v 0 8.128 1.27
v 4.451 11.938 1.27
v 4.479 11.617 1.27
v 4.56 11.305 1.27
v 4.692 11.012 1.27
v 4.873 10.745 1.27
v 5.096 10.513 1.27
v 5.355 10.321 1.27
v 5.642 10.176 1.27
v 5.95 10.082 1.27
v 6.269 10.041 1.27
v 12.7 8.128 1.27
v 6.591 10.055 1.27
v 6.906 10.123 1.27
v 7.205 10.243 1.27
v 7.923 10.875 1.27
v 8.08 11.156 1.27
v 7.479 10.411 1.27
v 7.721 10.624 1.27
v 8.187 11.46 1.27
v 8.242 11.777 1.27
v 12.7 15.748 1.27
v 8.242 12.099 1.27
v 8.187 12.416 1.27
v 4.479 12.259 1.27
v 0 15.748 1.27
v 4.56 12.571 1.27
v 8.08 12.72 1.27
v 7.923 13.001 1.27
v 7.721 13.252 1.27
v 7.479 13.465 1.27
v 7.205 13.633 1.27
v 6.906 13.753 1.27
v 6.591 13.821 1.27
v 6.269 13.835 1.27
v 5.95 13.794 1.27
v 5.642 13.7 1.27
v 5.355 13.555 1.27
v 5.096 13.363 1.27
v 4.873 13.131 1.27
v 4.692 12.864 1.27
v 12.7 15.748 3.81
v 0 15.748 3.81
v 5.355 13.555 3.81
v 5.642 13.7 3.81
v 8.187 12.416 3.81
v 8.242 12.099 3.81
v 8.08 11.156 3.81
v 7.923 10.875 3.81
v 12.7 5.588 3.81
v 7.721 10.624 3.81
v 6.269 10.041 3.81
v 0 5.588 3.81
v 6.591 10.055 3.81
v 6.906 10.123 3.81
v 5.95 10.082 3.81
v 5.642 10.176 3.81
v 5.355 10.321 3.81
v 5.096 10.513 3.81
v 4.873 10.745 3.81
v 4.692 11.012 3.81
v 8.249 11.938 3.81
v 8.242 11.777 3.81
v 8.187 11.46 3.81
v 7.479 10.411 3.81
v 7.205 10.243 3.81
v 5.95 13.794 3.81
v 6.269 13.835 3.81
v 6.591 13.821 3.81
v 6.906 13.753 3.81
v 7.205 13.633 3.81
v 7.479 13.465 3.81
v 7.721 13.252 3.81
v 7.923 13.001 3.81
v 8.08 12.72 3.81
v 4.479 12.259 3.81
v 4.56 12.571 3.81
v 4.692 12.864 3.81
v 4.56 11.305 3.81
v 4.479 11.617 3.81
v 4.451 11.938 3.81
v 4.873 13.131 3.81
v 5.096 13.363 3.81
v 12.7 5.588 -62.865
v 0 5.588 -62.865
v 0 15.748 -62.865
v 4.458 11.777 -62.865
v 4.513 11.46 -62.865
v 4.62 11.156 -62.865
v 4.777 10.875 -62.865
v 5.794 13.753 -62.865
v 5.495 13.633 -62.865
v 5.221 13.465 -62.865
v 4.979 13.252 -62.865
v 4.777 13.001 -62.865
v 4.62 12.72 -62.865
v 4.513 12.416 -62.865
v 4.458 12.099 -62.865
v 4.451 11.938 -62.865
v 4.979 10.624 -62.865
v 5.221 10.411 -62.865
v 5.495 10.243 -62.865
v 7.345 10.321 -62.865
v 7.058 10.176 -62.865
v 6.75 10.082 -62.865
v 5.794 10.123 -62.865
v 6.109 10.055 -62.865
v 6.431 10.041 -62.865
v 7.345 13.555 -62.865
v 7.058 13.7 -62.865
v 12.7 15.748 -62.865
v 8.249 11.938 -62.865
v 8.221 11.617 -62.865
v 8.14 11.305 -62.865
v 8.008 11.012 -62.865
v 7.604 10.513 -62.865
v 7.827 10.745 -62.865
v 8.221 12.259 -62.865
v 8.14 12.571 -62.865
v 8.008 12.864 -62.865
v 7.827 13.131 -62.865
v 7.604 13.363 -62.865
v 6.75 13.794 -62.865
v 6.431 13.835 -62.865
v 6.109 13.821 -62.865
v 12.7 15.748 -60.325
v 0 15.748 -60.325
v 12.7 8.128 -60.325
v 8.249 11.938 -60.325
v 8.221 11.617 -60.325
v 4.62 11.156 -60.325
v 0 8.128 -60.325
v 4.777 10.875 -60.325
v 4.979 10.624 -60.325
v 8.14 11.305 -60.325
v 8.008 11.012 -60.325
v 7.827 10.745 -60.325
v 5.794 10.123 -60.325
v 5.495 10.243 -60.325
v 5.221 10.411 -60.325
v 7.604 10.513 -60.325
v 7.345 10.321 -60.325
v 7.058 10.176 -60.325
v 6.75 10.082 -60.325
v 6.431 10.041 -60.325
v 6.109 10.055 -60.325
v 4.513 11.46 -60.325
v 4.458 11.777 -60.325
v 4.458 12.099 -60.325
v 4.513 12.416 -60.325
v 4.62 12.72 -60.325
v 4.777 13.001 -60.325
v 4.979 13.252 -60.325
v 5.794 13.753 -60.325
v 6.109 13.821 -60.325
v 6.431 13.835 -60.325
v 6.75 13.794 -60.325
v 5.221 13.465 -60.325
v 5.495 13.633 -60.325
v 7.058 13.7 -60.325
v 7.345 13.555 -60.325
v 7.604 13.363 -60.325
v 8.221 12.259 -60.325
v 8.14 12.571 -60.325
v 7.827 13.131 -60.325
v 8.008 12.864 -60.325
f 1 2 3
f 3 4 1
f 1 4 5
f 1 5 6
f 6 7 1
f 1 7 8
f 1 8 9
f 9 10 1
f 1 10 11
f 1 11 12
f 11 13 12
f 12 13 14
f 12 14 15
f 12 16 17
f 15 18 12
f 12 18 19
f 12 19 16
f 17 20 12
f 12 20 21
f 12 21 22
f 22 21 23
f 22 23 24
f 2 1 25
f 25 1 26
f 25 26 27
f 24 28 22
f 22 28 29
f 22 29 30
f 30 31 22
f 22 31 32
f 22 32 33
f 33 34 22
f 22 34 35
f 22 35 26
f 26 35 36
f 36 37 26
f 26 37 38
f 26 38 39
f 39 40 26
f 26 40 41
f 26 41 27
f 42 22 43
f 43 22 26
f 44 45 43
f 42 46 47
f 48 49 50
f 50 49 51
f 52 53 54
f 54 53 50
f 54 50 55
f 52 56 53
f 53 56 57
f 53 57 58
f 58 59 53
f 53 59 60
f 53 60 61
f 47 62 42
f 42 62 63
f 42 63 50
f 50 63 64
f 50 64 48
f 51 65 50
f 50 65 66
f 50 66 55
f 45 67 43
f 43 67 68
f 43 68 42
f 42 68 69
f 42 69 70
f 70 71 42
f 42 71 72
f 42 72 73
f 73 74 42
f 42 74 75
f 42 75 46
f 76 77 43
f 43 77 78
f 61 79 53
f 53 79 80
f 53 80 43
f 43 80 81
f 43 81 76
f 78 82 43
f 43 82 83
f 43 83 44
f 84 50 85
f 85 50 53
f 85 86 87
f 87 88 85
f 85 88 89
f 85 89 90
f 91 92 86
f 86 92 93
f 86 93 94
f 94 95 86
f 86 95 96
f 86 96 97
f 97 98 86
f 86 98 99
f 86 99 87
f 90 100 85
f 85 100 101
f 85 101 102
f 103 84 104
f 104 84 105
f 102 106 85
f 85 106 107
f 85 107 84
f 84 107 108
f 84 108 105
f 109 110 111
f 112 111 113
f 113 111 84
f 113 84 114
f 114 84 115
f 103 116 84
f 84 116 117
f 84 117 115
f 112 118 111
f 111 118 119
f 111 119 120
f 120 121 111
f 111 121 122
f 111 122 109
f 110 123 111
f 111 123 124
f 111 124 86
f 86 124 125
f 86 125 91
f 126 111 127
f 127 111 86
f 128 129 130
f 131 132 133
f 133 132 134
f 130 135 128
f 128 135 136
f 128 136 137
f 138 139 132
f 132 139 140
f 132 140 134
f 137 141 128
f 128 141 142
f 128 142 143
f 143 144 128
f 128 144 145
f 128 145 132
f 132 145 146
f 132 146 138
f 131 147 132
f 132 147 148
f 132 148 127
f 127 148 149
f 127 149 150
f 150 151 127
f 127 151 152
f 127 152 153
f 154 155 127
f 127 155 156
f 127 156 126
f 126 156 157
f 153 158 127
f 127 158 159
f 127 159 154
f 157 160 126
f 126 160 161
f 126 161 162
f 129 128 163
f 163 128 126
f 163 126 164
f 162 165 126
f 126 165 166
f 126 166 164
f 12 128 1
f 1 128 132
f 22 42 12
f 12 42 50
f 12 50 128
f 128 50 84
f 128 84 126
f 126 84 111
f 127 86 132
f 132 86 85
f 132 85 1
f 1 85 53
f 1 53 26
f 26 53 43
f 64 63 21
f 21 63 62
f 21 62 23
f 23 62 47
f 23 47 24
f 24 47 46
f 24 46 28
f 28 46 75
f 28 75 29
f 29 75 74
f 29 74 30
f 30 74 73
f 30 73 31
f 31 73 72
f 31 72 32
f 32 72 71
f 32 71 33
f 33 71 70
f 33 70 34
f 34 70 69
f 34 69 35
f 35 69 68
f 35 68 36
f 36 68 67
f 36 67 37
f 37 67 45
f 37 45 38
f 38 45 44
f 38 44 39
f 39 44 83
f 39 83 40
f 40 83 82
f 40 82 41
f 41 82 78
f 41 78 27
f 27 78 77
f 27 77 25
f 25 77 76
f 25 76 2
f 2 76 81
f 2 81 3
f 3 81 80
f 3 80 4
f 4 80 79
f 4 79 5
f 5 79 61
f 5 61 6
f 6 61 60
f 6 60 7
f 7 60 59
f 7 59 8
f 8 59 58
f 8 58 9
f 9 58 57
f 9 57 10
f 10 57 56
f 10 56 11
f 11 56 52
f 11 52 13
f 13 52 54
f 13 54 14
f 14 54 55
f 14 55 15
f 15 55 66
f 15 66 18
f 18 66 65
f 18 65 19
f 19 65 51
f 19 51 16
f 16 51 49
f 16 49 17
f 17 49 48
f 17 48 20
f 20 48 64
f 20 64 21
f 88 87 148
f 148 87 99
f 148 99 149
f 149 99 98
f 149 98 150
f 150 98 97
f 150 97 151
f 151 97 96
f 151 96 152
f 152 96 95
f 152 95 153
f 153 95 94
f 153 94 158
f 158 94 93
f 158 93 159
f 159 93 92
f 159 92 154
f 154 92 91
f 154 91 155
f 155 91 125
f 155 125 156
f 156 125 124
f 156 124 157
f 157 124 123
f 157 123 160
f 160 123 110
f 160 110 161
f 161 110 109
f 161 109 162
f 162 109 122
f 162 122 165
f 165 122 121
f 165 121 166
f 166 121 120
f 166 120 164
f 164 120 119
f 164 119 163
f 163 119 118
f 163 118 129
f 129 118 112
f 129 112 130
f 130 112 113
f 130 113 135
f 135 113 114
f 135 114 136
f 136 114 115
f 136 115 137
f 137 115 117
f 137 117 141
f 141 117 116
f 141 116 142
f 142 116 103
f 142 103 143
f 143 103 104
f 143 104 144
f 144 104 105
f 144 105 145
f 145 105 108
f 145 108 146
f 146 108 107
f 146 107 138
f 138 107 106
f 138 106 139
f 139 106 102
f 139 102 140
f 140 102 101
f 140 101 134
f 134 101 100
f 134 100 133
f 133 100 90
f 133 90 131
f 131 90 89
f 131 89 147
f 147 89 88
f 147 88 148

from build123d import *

# Parameters (mm, degrees)
EXTRUDE_THIN1_DEPTH       = 12.7
F_6_CLEARANCE_HOLE1_D     = 3.7973
F_6_CLEARANCE_HOLE1_DEPTH = 7.62
F_6_CLEARANCE_HOLE1_TIP   = 1.140824014
F_6_CLEARANCE_HOLE2_D     = 3.7973
F_6_CLEARANCE_HOLE2_DEPTH = 7.62
F_6_CLEARANCE_HOLE2_TIP   = 1.140824014


with BuildPart() as part:
    # Sketch1 → Extrude-Thin1 (new body)
    with BuildSketch(Plane(origin=(0, 0, 0), x_dir=(0, 0, -1), z_dir=(1, 0, 0))):
        Polygon((-1.27, 15.748), (-1.27, 8.128), (60.325, 8.128), (60.325, 15.748), (62.865, 15.748), (62.865, 5.588), (-3.81, 5.588), (-3.81, 15.748), align=None)
    extrude(amount=EXTRUDE_THIN1_DEPTH)

    # #6 Clearance Hole1
    with Locations(Plane(origin=(0, 0, 1.27), x_dir=(-1, 0, 0), z_dir=(0, 0, -1))):
        with Locations((-6.35, 11.938)):
            Hole(F_6_CLEARANCE_HOLE1_D / 2, depth=F_6_CLEARANCE_HOLE1_DEPTH)
            with Locations((0, 0, -(F_6_CLEARANCE_HOLE1_DEPTH + F_6_CLEARANCE_HOLE1_TIP / 2))):  # 118° drill point
                Cone(0, F_6_CLEARANCE_HOLE1_D / 2, F_6_CLEARANCE_HOLE1_TIP, mode=Mode.SUBTRACT)

    # #6 Clearance Hole2
    with Locations(Plane.XY.offset(-60.325)):
        with Locations((6.35, 11.938)):
            Hole(F_6_CLEARANCE_HOLE2_D / 2, depth=F_6_CLEARANCE_HOLE2_DEPTH)
            with Locations((0, 0, -(F_6_CLEARANCE_HOLE2_DEPTH + F_6_CLEARANCE_HOLE2_TIP / 2))):  # 118° drill point
                Cone(0, F_6_CLEARANCE_HOLE2_D / 2, F_6_CLEARANCE_HOLE2_TIP, mode=Mode.SUBTRACT)


solid = part.part
